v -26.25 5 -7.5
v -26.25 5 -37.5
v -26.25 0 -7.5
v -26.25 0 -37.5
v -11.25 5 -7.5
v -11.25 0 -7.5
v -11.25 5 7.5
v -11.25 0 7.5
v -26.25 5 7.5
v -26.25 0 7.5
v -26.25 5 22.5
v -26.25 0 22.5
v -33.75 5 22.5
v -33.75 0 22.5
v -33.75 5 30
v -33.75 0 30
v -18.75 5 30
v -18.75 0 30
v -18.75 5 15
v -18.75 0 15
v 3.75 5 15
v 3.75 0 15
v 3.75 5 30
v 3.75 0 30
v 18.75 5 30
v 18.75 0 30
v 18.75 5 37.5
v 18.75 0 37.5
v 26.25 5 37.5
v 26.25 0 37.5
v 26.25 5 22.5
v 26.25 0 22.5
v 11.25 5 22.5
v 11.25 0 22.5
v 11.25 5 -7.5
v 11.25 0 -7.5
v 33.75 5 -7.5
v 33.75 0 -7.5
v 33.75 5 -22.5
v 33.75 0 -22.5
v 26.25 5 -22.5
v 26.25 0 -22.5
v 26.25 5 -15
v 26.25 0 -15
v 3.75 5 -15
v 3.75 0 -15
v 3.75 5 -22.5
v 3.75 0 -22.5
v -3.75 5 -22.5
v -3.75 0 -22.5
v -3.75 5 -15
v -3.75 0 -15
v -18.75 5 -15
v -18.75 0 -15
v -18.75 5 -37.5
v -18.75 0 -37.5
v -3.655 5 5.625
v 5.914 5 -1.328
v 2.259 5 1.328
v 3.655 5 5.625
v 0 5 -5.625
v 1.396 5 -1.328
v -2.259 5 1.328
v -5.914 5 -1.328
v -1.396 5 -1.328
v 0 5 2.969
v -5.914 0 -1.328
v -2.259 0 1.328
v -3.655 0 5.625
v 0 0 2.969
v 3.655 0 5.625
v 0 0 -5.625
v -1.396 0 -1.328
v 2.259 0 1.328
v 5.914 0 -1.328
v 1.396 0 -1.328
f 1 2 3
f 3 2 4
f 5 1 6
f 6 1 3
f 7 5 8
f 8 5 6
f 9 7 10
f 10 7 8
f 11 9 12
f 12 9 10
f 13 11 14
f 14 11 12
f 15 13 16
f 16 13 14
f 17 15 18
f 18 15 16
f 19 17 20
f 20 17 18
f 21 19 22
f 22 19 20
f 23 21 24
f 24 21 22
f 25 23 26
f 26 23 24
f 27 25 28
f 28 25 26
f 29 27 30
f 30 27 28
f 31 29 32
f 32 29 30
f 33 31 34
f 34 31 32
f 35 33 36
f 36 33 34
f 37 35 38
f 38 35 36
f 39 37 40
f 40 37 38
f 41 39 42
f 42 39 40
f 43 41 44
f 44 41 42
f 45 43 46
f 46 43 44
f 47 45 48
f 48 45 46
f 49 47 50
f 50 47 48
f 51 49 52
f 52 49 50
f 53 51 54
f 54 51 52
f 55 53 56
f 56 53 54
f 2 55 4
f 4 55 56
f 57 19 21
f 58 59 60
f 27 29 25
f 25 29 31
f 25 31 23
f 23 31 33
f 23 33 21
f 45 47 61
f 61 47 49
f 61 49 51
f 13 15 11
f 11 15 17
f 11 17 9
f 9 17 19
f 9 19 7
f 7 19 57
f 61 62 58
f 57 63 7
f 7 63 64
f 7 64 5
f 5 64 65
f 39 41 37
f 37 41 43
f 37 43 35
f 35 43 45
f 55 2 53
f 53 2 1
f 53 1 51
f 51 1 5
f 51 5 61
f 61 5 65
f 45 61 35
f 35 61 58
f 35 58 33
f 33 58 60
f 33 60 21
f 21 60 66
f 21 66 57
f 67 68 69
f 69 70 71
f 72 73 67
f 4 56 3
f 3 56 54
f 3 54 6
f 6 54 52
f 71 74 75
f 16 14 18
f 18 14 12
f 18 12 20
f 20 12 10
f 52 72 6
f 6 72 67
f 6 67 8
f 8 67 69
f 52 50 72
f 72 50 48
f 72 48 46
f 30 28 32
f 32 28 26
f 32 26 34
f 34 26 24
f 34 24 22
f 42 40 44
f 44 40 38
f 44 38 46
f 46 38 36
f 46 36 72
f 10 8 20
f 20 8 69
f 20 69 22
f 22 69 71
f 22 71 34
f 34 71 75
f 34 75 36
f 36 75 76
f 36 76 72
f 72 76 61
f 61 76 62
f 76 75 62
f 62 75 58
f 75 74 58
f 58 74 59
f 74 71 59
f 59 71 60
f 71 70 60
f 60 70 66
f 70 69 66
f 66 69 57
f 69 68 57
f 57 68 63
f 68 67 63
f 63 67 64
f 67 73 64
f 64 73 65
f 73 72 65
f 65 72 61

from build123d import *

# Parameters (mm, degrees)
SKETCH1_W           = 22.5
SKETCH1_H           = 30
SKETCH1_W_2         = 7.5
SKETCH1_H_2         = 7.5
BOSS_EXTRUDE1_DEPTH = 5
CUT_EXTRUDE1_DEPTH  = 51.698249477


with BuildPart() as part:
    # Sketch1 → Boss-Extrude1 (new body)
    with BuildSketch(Plane(origin=(0, 0, 0), x_dir=(1, 0, 0), z_dir=(0, 1, 0))):
        Polygon((-11.25, 7.5), (-11.25, 15), (-18.75, 15), (-18.75, 37.5), (-26.25, 37.5), (-26.25, 7.5), align=None)
        Rectangle(SKETCH1_W, SKETCH1_H)
        with Locations((0, 18.75)):
            Rectangle(SKETCH1_W_2, SKETCH1_H_2)
        Polygon((26.25, 15), (11.25, 15), (11.25, 7.5), (33.75, 7.5), (33.75, 22.5), (26.25, 22.5), align=None)
        Polygon((11.25, -22.5), (11.25, -15), (3.75, -15), (3.75, -30), (18.75, -30), (18.75, -37.5), (26.25, -37.5), (26.25, -22.5), align=None)
        Polygon((-18.75, -15), (-11.25, -15), (-11.25, -7.5), (-26.25, -7.5), (-26.25, -22.5), (-33.75, -22.5), (-33.75, -30), (-18.75, -30), align=None)
    extrude(amount=BOSS_EXTRUDE1_DEPTH)

    # Sketch2 → Cut-Extrude1 (cut, through all)
    with BuildSketch(Plane(origin=(0, 5, 0), x_dir=(1, 0, 0), z_dir=(0, 1, 0))):
        Polygon((0, 5.625), (-1.396218154, 1.327882373), (-5.914475011, 1.327882373), (-2.259128429, -1.327882373), (-3.655346583, -5.625), (0, -2.969235253), (3.655346583, -5.625), (2.259128429, -1.327882373), (5.914475011, 1.327882373), (1.396218154, 1.327882373), align=None)
    extrude(amount=-CUT_EXTRUDE1_DEPTH, mode=Mode.SUBTRACT)


solid = part.part
